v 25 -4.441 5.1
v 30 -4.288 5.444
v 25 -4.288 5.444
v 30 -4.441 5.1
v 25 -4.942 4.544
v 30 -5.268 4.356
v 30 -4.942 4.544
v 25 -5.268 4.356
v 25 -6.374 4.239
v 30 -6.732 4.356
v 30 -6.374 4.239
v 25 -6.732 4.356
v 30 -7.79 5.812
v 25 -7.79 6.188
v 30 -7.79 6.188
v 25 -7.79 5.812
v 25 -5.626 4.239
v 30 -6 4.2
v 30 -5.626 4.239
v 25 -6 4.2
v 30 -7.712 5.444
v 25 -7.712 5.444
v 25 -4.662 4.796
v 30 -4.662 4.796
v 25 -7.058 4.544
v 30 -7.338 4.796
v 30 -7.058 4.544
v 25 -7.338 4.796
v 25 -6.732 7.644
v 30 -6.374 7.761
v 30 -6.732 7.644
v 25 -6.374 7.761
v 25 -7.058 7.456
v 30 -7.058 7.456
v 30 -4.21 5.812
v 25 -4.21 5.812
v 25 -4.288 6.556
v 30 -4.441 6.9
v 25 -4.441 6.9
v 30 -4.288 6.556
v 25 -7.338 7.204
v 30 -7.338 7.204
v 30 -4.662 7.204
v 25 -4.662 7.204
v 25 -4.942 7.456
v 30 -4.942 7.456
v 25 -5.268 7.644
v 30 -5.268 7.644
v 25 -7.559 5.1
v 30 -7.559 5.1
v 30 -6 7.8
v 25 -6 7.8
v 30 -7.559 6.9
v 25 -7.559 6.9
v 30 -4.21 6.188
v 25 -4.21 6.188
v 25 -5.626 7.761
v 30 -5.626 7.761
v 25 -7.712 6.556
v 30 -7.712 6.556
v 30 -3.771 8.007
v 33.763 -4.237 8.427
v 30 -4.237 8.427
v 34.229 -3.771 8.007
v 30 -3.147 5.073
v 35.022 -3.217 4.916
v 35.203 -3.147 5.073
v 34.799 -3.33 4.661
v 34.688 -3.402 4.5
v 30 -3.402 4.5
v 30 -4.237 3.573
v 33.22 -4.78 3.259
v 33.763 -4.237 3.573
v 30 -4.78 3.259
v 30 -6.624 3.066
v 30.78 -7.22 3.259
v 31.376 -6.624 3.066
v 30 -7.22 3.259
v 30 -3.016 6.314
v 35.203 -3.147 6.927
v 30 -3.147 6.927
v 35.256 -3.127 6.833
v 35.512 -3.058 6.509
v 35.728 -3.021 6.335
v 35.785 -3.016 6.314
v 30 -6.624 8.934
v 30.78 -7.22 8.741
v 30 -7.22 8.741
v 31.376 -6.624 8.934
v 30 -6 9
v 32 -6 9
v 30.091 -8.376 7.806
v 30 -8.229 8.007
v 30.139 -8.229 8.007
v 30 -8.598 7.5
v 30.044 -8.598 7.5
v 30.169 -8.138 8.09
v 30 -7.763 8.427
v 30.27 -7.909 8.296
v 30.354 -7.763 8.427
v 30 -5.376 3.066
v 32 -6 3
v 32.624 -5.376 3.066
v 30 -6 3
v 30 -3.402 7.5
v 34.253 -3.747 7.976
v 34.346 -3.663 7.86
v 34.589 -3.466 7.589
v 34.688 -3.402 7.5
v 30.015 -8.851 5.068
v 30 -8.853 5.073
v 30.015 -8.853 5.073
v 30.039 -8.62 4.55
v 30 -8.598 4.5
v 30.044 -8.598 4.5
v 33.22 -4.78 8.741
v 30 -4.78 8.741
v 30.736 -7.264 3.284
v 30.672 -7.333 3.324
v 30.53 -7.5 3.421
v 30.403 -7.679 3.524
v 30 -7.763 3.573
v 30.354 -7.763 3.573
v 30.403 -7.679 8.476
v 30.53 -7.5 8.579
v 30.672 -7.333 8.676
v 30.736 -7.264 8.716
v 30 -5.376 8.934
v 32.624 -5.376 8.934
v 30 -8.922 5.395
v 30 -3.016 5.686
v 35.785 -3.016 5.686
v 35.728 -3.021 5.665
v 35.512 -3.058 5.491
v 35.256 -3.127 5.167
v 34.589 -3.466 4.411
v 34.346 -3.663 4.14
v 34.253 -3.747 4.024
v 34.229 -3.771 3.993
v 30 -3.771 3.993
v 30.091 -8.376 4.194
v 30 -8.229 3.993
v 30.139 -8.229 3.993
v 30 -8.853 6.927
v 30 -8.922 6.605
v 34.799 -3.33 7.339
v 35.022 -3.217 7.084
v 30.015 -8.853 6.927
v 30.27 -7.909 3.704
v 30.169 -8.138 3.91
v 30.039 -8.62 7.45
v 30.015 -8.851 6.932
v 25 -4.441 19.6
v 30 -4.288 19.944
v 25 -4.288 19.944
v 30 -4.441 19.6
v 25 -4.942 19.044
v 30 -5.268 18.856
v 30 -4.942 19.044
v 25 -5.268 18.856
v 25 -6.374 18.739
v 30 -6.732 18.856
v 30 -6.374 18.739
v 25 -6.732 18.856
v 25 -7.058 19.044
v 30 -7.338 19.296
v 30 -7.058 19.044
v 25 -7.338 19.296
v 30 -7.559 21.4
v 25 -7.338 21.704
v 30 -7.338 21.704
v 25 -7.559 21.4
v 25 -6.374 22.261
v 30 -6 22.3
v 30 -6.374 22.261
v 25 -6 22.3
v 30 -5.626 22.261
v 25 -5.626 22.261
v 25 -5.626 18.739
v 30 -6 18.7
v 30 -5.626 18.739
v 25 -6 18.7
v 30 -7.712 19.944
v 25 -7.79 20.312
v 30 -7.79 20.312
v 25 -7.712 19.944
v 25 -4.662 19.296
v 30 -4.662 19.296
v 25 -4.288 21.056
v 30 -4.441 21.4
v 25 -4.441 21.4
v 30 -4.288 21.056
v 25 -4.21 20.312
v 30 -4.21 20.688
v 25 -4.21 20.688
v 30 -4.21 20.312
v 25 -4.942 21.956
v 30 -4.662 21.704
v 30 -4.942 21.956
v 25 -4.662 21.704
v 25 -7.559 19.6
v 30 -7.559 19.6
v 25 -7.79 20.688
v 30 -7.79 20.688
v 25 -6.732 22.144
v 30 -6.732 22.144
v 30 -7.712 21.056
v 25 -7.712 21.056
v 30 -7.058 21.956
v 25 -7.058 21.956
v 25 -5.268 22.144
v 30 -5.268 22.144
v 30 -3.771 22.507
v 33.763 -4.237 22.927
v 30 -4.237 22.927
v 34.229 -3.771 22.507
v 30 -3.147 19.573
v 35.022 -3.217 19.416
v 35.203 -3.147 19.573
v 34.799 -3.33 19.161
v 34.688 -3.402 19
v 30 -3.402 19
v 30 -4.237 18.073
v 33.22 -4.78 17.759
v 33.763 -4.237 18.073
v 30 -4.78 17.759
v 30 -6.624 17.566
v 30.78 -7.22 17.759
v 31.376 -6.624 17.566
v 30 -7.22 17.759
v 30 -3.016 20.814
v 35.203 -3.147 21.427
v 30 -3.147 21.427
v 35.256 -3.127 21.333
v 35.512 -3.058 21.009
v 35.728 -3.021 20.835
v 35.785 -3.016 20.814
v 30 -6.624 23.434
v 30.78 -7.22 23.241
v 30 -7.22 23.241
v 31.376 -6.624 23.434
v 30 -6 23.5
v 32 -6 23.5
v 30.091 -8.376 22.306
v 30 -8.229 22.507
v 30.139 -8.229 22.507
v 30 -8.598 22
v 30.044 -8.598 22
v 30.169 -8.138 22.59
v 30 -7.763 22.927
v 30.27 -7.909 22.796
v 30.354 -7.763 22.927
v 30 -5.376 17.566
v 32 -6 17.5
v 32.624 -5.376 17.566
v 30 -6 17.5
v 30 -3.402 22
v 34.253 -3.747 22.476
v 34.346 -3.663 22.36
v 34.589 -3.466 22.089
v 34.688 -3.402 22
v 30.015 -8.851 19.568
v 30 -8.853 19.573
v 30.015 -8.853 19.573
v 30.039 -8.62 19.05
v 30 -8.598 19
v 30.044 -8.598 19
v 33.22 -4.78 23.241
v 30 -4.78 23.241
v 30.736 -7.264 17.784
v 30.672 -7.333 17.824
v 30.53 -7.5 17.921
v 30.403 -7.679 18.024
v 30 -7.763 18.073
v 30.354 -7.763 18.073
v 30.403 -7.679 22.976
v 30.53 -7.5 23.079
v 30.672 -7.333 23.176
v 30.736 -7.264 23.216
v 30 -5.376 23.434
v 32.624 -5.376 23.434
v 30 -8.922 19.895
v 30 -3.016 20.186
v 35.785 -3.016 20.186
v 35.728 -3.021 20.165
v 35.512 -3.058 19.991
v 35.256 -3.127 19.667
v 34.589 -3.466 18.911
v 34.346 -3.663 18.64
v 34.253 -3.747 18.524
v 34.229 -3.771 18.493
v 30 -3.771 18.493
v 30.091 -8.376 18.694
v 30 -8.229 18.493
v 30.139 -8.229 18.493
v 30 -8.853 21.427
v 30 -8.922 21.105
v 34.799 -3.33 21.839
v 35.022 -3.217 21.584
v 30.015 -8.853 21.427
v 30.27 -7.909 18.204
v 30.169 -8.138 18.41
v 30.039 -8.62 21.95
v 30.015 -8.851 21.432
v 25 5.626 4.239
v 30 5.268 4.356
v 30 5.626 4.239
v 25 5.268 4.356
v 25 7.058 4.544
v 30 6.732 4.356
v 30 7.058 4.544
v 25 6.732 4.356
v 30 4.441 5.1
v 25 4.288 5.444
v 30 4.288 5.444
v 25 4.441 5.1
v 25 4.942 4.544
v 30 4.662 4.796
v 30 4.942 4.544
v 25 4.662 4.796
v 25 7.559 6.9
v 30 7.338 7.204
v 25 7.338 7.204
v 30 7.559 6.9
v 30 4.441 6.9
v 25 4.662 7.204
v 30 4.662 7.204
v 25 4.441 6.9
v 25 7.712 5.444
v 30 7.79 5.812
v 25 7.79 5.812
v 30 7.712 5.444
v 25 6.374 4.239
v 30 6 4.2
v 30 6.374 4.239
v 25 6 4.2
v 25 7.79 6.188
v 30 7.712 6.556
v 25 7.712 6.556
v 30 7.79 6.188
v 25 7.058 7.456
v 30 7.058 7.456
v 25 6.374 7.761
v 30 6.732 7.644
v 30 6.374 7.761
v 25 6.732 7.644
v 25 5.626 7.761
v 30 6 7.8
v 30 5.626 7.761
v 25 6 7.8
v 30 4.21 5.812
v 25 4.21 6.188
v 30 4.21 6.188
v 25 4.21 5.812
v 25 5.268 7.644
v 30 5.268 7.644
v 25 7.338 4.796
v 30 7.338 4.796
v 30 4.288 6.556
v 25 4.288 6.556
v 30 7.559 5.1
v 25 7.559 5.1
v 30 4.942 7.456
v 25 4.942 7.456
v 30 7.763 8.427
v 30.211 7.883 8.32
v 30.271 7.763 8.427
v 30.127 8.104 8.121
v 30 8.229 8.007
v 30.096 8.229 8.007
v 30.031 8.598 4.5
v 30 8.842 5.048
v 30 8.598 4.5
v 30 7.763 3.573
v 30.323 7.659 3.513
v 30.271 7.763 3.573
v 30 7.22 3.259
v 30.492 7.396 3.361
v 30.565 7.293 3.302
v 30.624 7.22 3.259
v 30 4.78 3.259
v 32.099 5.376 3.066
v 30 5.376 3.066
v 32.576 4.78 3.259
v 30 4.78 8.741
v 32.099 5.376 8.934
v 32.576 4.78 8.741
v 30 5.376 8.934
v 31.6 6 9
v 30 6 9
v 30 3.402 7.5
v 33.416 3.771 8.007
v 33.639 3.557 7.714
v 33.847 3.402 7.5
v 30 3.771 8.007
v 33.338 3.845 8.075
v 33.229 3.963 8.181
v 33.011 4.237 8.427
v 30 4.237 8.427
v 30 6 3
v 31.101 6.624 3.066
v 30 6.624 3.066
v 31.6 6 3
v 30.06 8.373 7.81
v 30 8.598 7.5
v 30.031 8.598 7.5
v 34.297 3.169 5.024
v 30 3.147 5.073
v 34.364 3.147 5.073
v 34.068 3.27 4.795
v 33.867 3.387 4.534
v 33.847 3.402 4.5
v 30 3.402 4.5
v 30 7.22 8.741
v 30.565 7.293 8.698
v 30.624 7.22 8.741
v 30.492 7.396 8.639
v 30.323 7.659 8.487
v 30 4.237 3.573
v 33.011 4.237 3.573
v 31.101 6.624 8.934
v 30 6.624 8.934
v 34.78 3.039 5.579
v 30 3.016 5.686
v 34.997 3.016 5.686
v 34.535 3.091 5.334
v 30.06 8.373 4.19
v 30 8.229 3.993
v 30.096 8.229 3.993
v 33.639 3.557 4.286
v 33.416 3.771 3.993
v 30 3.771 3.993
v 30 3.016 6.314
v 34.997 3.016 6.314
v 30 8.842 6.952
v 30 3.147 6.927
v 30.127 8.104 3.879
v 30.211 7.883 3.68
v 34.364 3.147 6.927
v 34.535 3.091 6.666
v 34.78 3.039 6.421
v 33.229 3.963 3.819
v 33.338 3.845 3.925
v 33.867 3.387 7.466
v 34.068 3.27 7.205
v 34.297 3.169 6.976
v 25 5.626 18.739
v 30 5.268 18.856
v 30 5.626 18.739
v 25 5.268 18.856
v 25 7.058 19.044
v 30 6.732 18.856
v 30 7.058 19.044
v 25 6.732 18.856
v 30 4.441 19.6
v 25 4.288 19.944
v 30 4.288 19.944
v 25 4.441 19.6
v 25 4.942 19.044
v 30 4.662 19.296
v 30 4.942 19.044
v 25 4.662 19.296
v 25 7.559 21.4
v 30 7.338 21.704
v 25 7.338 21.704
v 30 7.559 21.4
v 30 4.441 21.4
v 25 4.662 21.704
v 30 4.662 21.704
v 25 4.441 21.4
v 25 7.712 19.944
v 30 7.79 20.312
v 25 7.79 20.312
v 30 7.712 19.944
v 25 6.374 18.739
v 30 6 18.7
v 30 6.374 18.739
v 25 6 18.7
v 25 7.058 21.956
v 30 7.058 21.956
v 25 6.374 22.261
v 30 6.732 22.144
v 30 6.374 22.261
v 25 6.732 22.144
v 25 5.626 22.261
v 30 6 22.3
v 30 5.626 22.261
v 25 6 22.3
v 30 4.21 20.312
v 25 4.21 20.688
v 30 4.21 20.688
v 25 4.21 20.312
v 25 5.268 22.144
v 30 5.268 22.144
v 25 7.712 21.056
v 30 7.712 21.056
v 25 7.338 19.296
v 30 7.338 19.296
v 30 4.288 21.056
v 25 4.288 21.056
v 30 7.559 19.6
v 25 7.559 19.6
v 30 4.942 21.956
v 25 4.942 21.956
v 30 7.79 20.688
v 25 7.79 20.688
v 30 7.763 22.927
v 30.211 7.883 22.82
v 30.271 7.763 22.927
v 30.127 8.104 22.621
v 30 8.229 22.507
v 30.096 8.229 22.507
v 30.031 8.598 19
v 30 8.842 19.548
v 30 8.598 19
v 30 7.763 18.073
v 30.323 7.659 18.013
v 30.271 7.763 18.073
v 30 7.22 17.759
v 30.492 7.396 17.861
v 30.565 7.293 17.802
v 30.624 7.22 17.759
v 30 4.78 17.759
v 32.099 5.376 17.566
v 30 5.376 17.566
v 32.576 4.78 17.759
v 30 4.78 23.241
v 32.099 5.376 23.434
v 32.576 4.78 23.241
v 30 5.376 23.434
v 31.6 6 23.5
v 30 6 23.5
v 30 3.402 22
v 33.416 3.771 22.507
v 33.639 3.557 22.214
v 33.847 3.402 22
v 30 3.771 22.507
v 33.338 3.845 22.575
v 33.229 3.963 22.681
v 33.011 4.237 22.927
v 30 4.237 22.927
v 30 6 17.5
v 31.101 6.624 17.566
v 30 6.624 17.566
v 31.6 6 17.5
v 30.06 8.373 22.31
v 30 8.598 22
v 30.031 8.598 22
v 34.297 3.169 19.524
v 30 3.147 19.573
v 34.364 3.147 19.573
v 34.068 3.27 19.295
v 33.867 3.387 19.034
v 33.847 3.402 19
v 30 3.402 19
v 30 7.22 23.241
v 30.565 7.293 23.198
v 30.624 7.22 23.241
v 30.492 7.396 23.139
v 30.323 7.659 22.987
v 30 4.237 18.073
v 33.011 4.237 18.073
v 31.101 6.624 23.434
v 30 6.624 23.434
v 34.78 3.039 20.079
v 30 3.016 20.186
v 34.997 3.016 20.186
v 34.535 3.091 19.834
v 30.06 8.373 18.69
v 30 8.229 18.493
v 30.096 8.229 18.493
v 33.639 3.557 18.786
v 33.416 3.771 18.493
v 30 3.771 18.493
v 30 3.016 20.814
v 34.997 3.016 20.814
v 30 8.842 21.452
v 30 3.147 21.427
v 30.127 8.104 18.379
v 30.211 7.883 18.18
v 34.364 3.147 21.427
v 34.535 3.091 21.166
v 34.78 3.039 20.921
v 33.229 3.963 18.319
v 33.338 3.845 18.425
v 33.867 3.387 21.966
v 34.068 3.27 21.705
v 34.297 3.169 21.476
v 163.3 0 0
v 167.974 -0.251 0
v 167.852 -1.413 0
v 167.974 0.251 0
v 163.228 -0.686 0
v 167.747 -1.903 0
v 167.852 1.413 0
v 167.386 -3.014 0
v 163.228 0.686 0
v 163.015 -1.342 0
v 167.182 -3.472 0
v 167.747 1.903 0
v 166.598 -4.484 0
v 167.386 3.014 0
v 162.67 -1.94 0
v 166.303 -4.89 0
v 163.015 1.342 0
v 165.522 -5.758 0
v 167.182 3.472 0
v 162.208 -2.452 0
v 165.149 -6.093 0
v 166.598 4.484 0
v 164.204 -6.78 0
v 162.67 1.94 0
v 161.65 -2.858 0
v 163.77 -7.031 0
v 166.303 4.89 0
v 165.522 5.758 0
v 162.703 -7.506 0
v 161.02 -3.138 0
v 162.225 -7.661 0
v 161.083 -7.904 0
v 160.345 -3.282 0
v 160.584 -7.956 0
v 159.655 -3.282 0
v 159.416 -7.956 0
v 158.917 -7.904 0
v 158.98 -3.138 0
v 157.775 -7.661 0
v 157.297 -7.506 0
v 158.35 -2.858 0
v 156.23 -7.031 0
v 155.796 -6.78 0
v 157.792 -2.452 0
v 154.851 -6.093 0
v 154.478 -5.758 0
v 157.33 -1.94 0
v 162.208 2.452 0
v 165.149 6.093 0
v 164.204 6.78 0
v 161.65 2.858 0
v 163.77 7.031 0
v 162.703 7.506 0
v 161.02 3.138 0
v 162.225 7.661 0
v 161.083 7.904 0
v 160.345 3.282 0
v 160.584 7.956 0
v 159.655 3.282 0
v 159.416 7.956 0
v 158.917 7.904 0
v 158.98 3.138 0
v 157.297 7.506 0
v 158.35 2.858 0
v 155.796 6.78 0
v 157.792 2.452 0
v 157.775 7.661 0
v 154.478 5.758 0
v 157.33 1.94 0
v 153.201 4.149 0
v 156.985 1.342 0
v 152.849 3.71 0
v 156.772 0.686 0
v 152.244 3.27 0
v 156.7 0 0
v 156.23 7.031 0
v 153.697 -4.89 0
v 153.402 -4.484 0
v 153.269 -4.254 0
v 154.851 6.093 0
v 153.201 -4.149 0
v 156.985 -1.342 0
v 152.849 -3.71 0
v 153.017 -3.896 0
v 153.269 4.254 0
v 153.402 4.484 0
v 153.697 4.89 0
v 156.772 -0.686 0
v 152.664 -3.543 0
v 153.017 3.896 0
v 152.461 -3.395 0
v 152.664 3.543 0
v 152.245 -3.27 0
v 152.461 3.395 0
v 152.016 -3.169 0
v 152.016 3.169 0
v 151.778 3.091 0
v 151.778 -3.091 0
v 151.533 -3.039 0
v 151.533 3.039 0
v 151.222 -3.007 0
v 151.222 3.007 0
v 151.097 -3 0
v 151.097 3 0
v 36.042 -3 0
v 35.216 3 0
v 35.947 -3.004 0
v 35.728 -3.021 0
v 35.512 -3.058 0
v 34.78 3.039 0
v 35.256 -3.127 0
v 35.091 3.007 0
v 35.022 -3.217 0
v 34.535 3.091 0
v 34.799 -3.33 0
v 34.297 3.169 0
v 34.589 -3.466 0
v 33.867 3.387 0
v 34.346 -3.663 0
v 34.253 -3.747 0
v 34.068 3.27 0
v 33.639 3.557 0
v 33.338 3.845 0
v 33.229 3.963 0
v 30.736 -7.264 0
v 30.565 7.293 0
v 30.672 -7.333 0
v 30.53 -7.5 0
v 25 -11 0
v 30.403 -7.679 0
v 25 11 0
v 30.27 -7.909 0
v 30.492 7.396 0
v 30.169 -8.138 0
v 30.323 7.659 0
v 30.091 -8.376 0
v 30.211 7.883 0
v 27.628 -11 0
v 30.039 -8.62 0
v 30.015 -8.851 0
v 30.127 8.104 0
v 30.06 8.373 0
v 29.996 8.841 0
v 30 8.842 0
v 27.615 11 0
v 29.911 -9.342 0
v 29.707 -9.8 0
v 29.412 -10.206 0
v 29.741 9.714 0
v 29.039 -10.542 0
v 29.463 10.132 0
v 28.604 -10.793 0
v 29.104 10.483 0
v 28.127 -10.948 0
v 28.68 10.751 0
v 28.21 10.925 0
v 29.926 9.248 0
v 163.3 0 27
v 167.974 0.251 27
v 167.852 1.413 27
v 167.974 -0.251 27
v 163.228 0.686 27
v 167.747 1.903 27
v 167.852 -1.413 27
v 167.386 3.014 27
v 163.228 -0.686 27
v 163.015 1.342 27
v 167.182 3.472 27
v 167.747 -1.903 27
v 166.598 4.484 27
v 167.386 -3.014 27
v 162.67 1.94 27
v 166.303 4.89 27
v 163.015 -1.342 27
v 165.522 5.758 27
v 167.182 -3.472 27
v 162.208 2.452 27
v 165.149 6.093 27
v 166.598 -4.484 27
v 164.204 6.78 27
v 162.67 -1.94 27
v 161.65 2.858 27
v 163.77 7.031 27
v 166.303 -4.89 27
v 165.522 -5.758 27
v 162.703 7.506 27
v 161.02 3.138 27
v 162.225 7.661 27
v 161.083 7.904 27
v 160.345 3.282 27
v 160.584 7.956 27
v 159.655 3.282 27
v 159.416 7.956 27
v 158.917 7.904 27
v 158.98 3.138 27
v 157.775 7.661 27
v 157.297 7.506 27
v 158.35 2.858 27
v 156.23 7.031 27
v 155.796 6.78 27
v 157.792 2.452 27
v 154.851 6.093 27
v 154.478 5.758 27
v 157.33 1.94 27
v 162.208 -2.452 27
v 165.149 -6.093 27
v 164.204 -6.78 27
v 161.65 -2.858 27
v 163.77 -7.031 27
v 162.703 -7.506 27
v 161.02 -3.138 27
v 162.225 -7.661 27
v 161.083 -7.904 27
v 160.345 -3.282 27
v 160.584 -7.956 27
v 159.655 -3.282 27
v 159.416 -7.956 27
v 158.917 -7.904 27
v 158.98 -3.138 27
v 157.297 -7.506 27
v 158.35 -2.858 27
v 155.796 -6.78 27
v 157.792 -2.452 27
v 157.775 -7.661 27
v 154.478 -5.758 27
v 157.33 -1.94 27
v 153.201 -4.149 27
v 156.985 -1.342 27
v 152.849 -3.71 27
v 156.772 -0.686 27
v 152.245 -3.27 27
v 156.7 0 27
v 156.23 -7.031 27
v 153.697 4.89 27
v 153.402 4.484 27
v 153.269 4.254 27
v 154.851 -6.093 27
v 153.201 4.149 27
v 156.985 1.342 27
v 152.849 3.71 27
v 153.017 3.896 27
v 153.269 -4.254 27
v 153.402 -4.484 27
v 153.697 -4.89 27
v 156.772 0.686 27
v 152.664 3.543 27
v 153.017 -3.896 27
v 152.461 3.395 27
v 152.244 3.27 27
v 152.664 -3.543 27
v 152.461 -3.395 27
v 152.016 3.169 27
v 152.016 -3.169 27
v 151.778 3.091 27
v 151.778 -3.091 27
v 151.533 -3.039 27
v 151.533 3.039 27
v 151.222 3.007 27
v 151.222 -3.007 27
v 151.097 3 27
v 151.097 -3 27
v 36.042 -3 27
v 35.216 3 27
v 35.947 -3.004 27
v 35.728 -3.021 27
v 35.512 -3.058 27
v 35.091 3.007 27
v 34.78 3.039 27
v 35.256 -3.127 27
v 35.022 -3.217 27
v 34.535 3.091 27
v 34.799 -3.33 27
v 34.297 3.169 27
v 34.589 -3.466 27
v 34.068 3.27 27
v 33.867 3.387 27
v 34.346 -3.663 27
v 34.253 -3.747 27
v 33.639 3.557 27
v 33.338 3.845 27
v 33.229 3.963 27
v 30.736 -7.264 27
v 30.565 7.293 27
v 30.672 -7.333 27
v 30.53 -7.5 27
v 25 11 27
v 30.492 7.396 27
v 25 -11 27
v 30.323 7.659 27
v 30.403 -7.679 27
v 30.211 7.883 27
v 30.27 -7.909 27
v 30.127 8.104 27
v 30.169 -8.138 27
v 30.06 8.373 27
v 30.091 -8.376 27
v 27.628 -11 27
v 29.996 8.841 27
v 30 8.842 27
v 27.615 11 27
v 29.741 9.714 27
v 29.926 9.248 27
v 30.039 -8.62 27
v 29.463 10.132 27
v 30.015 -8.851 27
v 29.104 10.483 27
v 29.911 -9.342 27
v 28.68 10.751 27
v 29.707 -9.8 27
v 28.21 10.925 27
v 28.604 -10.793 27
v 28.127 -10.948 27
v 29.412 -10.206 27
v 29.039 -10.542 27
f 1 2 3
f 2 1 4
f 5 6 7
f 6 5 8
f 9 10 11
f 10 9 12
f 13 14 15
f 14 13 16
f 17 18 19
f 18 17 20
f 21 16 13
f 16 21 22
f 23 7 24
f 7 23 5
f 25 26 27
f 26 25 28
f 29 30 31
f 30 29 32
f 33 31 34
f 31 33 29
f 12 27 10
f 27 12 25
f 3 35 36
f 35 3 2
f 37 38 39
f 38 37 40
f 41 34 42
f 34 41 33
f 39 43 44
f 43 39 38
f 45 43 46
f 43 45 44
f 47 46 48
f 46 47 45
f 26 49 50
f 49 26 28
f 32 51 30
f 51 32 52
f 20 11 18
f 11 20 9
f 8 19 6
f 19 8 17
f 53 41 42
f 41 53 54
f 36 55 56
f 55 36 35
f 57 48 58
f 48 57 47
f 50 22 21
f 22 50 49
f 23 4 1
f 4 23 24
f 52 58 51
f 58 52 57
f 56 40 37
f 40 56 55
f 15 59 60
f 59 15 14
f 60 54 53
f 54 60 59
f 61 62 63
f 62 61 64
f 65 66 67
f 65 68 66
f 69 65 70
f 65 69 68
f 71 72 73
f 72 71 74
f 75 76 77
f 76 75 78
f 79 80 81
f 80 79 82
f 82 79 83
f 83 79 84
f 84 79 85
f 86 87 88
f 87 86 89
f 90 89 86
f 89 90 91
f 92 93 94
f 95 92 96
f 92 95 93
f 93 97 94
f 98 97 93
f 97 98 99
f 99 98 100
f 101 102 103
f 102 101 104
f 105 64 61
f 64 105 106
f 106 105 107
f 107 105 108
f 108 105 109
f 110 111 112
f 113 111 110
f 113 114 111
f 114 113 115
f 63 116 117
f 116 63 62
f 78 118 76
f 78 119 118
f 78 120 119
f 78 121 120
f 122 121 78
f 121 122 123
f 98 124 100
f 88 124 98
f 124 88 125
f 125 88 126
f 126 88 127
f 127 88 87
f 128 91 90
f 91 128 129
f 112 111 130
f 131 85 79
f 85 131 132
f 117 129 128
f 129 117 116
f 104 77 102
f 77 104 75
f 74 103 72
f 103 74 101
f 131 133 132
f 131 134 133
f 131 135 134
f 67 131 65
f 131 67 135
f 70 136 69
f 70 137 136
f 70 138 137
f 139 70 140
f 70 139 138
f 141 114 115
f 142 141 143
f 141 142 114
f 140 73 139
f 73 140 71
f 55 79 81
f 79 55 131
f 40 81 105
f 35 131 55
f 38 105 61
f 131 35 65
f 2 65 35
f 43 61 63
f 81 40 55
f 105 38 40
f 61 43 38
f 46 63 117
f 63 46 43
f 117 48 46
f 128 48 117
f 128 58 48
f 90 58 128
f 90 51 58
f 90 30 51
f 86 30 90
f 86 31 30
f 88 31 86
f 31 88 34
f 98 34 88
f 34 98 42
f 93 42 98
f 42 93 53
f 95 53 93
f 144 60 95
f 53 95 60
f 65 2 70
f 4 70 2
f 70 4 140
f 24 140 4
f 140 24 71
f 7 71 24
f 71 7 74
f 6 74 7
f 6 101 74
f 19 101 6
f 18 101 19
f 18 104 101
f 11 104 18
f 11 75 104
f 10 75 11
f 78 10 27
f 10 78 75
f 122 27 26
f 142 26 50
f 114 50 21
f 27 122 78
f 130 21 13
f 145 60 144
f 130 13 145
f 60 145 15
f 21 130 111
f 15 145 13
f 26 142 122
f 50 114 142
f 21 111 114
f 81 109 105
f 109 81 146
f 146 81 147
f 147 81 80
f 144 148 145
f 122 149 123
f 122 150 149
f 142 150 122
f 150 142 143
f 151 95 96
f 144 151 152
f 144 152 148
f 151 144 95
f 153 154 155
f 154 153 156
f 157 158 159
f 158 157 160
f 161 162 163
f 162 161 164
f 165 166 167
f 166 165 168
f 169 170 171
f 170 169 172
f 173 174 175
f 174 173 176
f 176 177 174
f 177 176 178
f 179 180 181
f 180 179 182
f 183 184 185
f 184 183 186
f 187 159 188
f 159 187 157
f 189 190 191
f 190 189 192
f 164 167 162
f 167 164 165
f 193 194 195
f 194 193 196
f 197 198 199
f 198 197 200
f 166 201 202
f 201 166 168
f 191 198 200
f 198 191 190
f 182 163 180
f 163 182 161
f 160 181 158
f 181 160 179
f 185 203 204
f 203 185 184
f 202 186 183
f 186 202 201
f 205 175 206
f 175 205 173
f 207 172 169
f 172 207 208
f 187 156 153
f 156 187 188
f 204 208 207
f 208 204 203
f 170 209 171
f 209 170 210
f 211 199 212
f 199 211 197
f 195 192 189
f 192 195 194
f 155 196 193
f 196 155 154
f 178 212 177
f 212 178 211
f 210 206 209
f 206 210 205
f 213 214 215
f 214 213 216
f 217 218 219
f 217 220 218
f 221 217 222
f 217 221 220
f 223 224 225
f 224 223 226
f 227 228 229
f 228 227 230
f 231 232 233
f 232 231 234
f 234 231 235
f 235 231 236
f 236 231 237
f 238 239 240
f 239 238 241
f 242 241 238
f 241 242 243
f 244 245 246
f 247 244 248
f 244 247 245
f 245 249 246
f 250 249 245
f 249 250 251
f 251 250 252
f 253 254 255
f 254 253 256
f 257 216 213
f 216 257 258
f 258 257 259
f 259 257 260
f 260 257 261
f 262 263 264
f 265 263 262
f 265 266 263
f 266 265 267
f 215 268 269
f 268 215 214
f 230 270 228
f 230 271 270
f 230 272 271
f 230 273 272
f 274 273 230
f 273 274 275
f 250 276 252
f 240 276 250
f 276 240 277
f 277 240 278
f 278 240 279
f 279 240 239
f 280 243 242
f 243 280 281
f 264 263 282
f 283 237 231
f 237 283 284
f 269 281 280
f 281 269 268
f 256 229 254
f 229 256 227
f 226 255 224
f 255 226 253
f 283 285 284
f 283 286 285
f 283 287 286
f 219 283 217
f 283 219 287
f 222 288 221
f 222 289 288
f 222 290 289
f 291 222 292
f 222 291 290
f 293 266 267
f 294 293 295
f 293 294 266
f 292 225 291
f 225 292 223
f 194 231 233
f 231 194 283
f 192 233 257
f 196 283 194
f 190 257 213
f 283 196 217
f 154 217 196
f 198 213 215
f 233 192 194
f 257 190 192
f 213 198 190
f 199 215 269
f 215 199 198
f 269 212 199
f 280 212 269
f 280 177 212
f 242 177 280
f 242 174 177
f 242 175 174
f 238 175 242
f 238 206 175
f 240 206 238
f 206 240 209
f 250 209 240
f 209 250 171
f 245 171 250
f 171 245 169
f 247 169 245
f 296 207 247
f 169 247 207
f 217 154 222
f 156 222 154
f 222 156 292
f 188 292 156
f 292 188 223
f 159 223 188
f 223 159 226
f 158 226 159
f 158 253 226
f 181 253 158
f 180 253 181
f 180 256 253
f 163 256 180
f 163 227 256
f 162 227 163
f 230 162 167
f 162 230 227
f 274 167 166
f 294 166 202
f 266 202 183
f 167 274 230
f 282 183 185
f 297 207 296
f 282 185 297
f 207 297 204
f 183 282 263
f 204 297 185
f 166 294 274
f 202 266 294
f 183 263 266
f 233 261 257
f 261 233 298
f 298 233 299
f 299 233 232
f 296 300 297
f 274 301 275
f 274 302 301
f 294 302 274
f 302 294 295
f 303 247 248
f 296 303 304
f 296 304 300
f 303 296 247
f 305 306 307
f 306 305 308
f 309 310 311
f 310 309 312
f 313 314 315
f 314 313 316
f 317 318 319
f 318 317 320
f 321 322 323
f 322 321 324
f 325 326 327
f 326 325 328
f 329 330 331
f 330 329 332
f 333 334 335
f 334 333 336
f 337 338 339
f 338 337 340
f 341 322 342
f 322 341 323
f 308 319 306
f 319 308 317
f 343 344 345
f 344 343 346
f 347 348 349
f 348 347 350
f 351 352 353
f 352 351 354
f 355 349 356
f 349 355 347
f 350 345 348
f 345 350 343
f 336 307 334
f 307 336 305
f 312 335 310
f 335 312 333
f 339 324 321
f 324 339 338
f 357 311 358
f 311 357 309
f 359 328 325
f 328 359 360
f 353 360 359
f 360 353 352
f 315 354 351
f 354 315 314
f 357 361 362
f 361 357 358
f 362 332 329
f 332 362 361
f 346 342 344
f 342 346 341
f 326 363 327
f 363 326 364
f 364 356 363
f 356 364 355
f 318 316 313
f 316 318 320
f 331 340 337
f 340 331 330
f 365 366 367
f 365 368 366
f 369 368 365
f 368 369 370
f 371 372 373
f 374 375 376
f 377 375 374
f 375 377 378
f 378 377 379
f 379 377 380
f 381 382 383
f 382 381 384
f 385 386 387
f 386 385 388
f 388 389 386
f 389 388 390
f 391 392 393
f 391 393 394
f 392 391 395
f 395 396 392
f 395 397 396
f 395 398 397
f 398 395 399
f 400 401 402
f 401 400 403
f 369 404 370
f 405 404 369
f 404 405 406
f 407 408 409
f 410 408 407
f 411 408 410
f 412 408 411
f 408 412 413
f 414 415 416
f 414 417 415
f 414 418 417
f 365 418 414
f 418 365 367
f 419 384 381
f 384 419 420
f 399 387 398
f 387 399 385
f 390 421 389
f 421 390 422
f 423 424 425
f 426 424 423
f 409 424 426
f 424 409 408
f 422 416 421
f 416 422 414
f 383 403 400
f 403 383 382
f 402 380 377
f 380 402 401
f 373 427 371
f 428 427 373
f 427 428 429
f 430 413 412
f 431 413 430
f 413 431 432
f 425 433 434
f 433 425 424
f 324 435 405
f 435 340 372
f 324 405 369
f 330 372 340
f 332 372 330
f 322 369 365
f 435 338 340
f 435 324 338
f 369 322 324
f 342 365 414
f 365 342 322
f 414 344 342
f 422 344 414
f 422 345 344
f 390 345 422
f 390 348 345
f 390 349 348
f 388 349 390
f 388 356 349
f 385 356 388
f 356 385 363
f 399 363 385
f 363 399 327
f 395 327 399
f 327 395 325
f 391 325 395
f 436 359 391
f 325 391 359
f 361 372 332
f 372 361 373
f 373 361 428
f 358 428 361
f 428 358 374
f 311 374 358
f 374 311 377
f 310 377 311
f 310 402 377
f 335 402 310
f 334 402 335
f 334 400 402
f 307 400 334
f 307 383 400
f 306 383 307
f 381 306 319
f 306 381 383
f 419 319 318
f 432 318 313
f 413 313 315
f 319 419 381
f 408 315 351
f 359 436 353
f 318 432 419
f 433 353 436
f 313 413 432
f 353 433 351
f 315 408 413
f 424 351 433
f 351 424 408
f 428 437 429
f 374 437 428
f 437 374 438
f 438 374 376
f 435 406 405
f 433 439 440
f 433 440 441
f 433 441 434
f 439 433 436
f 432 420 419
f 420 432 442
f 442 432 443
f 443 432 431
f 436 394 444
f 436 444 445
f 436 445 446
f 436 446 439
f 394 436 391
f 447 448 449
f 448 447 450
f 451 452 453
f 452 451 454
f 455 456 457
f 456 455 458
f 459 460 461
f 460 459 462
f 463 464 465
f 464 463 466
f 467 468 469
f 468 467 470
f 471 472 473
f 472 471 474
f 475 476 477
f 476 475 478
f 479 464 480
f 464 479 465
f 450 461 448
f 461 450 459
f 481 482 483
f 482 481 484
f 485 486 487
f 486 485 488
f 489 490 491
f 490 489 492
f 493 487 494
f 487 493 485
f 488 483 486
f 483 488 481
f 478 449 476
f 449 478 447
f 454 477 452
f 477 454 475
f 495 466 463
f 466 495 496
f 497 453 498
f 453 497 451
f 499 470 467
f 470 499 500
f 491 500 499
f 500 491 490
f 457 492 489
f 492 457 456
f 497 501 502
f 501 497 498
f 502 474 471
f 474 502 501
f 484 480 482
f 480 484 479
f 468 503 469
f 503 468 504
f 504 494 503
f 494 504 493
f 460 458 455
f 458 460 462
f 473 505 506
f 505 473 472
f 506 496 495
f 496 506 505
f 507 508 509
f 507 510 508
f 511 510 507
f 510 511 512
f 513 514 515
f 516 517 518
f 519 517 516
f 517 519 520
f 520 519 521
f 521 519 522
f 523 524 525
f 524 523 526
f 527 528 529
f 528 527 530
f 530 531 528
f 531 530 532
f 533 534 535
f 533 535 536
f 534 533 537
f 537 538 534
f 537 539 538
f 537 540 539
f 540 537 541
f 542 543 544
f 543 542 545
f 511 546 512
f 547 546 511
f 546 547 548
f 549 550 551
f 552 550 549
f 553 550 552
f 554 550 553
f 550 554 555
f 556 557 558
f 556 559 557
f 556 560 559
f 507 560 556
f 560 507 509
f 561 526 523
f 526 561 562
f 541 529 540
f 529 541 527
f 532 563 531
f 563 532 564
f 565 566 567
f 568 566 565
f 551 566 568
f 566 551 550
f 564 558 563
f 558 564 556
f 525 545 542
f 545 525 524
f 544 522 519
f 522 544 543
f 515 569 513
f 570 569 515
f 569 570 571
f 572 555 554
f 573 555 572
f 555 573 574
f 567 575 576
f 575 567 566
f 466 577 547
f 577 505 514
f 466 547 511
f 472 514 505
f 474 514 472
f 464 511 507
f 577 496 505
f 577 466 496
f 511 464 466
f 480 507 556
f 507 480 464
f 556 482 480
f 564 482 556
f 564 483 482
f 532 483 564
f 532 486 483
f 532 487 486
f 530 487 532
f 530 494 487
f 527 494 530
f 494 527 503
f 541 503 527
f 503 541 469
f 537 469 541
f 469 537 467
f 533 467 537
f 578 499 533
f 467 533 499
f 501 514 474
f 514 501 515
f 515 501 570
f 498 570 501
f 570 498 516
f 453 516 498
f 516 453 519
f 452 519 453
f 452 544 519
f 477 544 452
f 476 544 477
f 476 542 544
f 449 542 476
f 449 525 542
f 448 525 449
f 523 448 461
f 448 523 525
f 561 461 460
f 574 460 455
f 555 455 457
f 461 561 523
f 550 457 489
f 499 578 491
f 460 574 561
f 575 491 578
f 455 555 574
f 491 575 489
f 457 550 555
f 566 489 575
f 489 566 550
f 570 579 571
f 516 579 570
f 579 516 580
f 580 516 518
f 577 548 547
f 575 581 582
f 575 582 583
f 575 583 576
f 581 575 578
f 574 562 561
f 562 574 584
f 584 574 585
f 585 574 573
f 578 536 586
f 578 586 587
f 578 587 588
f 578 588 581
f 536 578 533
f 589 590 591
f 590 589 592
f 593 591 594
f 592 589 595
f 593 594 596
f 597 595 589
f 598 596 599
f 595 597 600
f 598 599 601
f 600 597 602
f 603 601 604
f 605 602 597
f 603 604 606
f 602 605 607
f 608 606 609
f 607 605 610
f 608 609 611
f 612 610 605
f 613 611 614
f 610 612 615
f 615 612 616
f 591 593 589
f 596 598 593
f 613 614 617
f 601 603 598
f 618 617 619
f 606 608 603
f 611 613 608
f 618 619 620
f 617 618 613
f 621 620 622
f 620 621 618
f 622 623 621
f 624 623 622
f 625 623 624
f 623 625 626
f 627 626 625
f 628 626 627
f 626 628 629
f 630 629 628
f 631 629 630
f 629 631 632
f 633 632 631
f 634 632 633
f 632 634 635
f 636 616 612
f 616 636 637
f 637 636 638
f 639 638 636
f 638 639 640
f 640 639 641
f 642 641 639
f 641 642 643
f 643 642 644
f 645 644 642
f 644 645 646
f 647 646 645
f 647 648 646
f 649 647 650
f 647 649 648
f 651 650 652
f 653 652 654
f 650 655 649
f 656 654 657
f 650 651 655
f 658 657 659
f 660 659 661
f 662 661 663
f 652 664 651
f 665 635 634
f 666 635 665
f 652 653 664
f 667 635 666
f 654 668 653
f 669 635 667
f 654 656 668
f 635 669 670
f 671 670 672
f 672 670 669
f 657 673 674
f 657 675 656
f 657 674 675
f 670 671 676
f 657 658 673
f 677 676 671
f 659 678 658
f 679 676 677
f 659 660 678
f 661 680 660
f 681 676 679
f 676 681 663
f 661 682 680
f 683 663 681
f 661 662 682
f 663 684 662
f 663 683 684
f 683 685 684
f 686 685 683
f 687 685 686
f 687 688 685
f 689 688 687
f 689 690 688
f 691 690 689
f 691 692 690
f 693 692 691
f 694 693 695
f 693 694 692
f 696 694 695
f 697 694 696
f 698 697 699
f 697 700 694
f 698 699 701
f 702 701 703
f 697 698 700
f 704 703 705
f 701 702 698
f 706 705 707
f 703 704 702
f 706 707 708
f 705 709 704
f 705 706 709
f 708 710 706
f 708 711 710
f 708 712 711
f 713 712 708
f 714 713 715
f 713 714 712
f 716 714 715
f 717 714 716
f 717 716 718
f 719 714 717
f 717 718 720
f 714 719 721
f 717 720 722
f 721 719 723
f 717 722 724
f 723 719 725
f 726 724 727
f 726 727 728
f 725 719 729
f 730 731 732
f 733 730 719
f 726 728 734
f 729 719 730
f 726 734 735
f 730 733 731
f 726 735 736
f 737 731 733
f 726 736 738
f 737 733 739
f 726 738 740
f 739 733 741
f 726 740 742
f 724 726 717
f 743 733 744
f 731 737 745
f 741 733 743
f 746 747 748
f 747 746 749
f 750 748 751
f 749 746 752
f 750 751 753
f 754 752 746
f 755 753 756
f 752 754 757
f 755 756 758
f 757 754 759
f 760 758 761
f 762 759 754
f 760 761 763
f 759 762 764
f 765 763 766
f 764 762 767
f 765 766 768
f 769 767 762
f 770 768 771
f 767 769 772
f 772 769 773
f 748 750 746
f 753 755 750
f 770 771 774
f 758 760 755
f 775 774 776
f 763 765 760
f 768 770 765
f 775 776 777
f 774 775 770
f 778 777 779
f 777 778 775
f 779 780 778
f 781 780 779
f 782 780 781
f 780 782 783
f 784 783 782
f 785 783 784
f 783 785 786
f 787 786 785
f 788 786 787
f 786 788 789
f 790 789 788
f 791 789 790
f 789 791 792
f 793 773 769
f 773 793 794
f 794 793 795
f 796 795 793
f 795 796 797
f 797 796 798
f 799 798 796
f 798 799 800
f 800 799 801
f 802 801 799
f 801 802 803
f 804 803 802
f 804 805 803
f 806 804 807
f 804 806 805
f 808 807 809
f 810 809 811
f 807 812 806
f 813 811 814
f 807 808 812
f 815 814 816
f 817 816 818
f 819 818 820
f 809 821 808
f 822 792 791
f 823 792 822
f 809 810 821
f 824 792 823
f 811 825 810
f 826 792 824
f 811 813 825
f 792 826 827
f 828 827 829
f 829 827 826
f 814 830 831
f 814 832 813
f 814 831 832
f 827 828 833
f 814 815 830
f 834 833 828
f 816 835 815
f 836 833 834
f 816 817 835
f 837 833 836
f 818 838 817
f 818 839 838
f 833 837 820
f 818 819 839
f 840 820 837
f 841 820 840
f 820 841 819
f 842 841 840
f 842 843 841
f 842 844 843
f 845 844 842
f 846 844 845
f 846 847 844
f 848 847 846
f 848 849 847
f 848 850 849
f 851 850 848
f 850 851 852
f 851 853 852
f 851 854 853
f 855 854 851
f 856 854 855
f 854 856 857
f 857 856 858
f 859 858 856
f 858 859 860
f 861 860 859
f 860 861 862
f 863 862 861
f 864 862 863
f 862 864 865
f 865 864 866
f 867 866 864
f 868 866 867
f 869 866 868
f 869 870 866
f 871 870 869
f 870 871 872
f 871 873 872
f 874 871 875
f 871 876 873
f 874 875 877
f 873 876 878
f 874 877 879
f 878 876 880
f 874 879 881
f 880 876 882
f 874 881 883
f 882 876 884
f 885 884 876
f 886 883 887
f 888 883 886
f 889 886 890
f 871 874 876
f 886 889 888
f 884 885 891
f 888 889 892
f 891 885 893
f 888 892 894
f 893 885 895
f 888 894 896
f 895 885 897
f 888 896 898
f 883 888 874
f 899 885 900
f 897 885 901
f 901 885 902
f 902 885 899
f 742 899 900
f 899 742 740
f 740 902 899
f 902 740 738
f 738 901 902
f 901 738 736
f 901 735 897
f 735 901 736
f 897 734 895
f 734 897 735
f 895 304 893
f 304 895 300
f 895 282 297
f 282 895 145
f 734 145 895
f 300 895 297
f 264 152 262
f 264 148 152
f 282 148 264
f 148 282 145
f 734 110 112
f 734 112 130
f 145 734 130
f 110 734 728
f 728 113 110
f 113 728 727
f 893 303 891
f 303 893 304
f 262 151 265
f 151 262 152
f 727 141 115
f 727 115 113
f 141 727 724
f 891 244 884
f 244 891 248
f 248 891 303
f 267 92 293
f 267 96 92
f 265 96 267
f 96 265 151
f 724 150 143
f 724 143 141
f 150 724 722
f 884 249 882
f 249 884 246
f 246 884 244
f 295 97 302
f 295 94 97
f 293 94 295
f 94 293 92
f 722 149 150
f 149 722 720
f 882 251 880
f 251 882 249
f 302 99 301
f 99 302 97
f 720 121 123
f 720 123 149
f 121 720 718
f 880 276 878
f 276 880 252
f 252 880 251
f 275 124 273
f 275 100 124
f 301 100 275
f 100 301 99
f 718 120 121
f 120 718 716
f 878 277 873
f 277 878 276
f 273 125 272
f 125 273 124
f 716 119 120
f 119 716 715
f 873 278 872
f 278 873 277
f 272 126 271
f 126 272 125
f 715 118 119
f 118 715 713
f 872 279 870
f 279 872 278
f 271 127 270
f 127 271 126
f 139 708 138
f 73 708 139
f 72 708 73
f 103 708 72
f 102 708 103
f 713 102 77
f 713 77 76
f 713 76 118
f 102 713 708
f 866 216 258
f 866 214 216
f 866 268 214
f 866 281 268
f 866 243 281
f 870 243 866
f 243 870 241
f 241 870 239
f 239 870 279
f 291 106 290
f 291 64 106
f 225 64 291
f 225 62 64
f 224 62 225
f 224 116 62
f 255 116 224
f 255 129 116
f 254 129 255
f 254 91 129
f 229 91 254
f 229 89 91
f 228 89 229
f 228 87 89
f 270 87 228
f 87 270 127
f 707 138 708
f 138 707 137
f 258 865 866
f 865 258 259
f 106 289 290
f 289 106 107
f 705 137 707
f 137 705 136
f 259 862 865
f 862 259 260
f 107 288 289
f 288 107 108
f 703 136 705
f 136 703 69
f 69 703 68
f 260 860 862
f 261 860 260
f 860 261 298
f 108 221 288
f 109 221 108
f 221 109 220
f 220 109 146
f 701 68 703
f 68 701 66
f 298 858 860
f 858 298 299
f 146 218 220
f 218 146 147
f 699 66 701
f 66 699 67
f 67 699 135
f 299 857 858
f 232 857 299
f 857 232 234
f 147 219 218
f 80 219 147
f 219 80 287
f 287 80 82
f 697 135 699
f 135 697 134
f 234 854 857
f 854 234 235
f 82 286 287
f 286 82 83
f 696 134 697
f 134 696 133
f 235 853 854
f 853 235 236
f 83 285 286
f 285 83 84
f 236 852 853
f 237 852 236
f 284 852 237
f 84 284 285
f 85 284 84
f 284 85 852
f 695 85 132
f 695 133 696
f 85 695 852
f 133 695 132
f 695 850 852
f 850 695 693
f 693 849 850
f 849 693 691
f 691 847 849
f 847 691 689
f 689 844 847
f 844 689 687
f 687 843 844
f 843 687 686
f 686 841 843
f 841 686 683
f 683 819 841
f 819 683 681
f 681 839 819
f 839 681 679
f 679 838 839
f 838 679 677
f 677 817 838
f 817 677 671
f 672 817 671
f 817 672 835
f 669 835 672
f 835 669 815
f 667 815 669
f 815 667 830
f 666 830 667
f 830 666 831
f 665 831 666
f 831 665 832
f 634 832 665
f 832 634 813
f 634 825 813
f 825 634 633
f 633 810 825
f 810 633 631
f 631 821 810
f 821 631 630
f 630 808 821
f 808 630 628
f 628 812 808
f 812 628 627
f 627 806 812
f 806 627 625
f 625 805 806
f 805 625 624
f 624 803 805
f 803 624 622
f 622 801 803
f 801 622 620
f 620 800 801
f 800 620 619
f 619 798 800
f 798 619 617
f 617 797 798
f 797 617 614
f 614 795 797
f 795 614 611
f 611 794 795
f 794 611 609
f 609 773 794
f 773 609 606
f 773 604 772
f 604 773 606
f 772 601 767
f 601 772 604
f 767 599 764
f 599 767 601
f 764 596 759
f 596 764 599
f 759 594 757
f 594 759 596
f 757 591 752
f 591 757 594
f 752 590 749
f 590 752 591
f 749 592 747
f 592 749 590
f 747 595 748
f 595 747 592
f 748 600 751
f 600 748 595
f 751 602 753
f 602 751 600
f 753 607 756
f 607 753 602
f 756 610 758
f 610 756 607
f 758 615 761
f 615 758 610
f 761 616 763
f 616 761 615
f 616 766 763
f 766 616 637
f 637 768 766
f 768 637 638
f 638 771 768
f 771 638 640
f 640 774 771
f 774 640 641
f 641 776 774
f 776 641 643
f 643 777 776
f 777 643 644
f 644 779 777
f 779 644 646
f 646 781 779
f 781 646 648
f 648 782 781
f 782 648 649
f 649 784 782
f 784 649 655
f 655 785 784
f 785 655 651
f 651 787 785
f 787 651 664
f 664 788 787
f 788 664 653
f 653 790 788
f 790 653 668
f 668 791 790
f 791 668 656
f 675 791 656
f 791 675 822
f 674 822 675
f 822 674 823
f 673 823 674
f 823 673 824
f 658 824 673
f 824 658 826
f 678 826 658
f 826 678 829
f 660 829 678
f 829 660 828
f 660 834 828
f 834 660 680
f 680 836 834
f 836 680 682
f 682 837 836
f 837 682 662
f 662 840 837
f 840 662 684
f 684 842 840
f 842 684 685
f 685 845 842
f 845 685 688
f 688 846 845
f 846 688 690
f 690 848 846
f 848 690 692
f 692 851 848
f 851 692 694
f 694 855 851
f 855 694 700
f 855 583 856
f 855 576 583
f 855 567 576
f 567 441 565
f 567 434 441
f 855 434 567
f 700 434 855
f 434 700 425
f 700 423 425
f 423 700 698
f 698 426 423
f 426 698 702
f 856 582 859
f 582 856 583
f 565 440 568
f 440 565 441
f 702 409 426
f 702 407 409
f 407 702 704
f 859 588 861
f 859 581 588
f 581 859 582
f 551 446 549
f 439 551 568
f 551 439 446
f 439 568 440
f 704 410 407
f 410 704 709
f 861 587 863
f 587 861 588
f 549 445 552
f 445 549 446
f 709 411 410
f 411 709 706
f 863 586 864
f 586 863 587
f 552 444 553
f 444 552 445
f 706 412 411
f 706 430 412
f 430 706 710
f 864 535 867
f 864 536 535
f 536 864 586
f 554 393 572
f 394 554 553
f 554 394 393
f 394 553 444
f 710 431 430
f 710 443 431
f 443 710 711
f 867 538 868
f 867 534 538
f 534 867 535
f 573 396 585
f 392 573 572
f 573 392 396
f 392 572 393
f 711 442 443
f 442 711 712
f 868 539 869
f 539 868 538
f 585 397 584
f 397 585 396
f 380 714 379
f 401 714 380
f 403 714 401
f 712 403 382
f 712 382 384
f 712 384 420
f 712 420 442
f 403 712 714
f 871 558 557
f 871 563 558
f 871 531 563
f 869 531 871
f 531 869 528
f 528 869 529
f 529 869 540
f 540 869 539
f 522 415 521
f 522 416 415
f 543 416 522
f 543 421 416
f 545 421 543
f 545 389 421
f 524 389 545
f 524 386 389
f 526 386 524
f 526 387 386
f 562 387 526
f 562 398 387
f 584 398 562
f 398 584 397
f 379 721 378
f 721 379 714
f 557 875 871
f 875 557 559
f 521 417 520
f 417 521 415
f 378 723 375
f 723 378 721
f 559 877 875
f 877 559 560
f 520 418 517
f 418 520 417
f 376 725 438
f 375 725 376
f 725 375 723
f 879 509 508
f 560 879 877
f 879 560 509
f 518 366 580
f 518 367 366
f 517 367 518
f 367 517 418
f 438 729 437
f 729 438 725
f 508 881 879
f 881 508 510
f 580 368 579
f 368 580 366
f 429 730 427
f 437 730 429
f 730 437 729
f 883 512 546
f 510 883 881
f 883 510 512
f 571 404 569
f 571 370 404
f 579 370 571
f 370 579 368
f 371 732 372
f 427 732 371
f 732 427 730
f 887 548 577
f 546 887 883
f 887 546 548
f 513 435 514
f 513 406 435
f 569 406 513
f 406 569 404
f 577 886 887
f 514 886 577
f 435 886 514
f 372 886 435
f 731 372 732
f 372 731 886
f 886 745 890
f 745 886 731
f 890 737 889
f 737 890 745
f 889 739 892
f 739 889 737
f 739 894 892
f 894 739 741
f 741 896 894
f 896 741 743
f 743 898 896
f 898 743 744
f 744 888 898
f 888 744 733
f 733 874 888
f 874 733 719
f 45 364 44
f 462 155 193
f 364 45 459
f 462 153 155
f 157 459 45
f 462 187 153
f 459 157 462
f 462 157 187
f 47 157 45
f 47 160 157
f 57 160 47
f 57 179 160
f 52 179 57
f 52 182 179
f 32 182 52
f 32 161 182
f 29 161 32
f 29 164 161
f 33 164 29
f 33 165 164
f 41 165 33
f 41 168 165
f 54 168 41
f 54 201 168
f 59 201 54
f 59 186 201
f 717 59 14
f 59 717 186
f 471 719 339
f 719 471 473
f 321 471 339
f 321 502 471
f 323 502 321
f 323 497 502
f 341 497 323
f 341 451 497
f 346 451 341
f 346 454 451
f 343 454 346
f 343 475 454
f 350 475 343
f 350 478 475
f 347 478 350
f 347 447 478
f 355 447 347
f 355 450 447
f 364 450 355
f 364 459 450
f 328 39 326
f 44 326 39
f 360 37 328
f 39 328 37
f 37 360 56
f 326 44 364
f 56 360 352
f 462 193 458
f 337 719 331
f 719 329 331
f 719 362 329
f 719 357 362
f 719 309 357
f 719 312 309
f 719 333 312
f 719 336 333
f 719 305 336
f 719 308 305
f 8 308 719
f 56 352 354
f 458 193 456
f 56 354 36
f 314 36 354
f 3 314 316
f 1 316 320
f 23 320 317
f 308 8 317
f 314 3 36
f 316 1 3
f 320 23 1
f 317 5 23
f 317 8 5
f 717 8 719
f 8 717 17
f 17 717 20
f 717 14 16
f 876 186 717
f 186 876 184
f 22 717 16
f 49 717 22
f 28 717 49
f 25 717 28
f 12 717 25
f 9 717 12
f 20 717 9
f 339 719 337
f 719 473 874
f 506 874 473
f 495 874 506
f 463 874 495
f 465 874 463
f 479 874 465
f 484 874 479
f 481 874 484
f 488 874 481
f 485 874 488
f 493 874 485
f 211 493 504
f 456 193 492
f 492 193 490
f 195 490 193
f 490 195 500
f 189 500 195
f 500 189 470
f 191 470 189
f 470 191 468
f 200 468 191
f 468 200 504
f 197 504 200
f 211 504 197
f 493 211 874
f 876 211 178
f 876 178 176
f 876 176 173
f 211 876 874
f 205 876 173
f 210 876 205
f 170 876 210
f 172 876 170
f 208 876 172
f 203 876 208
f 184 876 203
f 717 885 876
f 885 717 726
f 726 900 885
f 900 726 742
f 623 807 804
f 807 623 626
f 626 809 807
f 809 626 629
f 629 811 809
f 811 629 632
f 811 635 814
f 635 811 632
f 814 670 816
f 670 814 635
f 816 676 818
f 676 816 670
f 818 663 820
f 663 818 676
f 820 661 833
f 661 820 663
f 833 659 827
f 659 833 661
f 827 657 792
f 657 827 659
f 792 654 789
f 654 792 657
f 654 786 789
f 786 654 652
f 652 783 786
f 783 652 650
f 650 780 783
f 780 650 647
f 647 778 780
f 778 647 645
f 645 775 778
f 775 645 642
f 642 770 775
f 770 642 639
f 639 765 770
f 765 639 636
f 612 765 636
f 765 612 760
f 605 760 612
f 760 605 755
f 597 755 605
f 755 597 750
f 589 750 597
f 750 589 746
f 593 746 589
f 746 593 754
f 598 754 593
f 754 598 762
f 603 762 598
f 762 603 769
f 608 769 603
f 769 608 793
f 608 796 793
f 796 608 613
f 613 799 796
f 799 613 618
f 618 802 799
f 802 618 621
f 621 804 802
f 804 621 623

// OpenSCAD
// file: solenoid.scad
solenoid();

module solenoid(pos=false,type="JF0826B",_echo=false){
    position = pos ? 1 : 0;
    if(type=="JF0826B"){
        location = 12 - position * 10;
        color("silver") 
        difference(){
            cube([22,25,27]);
            translate([-1,2,2]) cube([24,21,22]);
            translate([4,-1,26]) cube([14,27,2]);
            translate([-1,2,26]) cube([24,21,2]);
            translate([11,12.5,-1]) cylinder(r=2,h=4);
            translate([11,12.5,3]) cylinder(r=4,h=27);
            translate([5,12.5,20.5]) 
                    rotate([-90,0,0]) cylinder(r=1.5,h=15);
            translate([17,12.5,6]) 
                    rotate([-90,0,0]) cylinder(r=1.5,h=15);
        }
        color("blue") translate([11,12.5,2]) difference(){
            cylinder(r=11,h=22);
            translate([0,0,-1]) cylinder(r=4,h=29);
        }
        color("silver") translate([11,12.5,location]) difference(){
        union(){
                cylinder(r=3.75,h=35);
                translate([0,0,26]) cylinder(r=6,h=1);
                translate([0,0,-15]) cylinder(r=1.7,h=16);
                translate([0,0,-15]) cylinder(r=3,h=3);
                translate([0,0,-15]) sphere(3);
            }
            translate([-5,-1.2,28]) cube([10,2.4,10]);
            translate([0,5,31]) rotate([90,0,0]) cylinder(r=1.25,h=10);
        }
        if(_echo){
            echo("position",position);
            echo("type",type);
            echo("throw (mm)",10);
            echo("width (Xmm)",22);
            echo("depth (Ymm)",25);
            echo("height (Zmm)",27);
            echo("HOA (Zmm, nut to top of shaft)",55);
            echo("mount holes (Dmm)",3);
            echo("mount apacing (XxZmm)",
                 "12x12 at...\n\t5 from vertical edge,\n\t6 from bottom edge.");
        }
    }
}
// main file
/*
  MIDI Driven Drumbot
  ©2024 Crunchysteve
  ----------------------
  This code will be the MIDI driven heart of SoléBot, the solenoid driven drumbot. 

  Dynamics are provided by using analogWrite() on channels that need them, or digitalWrite() for 
  the channels that don't, with a timed pulse to kick 12v solenoids with 24v for just long enough 
  to never exceed 24W RMS applied to each solenoid, even at maximum tempo. The MIDI note number 
  corresponding to each drum will determine which solenoid operates, while MIDI velocity + 127 
  applied to analogWrite() on the PWM outputs will generate soft to loud hits.

  This code will run on almost any micro, but the pins are setup for an Arduino Uno or Nano. 
  Use a dual AOD4184 MOSFET module, such as this one, 
    https://core-electronics.com.au/mosfet-power-switch-module.html, to drive each solenoid.

  I'm using JF-0826B 12v/2A 20N solenoids and, because of the light duty cycle, I run them from
  24V via the MOSFET boards. I haven't tried higher than 30v yet, but neither Solenoids nor the 
  MOSFETS run hot at 30v, even when run for extended periods. Non-blocking timing will be used to 
  pulse PWM drive just long enough to get the beater within a millimetre of the drum skin.
  
  All code, including C code and the OpenSCAD bracket 3D files, are hosted on
    https://github.com/crunchysteve/Solebot while,
  the OpenSCAD models are also hosted here 
    https://www.thingiverse.com/thing:6771931 without without C code.
  
  This code is copyright ©2024 Crunchysteve and is available for use or modification under an MIT 
  licence, except for commercial use, whereupon the author would appreciate a percentage of device 
  sales in exchange for any licence for manufacturing this project commercially.

  This preamble must always remain at the head of all 3d models and source code.
*/

use <solenoid.scad>

$fn = 30;
print = true;

//  If print is "false" show the solenoid, otherwise don't.
if(!print) translate([0,11,0]) rotate([0,0,-90]) solenoid();

arm() ;

module arm() difference(){
    armProfile();
    for(y=[-6,6]) for(z=[6,20.5]){
        translate([24,y,z]) rotate([0,90,0]) cylinder(r=1.8,h=10);
        translate([30,y,z]) rotate([0,90,0]) cylinder(r=3,h=15);
    }
}

module armProfile() linear_extrude(height=27) difference(){
    union(){
        offset(2.4) offset(-2.4) offset(-2.4) offset(2.4) union(){
            polygon([[25,0],[25,-11],[30,-11],
                     [30,-8],[35,-3],[160,-3],[160,0]]);
            mirror([0,1,0]) polygon([[25,0],[25,-11],[30,-11],
                                     [30,-8],[34,-3],[160,-3],[160,0]]);
            translate([160,0]) circle(8);
        }
        translate([25,-11]) square([2.4,22]);
    }
    translate([160,0]) circle(3.3);
}
